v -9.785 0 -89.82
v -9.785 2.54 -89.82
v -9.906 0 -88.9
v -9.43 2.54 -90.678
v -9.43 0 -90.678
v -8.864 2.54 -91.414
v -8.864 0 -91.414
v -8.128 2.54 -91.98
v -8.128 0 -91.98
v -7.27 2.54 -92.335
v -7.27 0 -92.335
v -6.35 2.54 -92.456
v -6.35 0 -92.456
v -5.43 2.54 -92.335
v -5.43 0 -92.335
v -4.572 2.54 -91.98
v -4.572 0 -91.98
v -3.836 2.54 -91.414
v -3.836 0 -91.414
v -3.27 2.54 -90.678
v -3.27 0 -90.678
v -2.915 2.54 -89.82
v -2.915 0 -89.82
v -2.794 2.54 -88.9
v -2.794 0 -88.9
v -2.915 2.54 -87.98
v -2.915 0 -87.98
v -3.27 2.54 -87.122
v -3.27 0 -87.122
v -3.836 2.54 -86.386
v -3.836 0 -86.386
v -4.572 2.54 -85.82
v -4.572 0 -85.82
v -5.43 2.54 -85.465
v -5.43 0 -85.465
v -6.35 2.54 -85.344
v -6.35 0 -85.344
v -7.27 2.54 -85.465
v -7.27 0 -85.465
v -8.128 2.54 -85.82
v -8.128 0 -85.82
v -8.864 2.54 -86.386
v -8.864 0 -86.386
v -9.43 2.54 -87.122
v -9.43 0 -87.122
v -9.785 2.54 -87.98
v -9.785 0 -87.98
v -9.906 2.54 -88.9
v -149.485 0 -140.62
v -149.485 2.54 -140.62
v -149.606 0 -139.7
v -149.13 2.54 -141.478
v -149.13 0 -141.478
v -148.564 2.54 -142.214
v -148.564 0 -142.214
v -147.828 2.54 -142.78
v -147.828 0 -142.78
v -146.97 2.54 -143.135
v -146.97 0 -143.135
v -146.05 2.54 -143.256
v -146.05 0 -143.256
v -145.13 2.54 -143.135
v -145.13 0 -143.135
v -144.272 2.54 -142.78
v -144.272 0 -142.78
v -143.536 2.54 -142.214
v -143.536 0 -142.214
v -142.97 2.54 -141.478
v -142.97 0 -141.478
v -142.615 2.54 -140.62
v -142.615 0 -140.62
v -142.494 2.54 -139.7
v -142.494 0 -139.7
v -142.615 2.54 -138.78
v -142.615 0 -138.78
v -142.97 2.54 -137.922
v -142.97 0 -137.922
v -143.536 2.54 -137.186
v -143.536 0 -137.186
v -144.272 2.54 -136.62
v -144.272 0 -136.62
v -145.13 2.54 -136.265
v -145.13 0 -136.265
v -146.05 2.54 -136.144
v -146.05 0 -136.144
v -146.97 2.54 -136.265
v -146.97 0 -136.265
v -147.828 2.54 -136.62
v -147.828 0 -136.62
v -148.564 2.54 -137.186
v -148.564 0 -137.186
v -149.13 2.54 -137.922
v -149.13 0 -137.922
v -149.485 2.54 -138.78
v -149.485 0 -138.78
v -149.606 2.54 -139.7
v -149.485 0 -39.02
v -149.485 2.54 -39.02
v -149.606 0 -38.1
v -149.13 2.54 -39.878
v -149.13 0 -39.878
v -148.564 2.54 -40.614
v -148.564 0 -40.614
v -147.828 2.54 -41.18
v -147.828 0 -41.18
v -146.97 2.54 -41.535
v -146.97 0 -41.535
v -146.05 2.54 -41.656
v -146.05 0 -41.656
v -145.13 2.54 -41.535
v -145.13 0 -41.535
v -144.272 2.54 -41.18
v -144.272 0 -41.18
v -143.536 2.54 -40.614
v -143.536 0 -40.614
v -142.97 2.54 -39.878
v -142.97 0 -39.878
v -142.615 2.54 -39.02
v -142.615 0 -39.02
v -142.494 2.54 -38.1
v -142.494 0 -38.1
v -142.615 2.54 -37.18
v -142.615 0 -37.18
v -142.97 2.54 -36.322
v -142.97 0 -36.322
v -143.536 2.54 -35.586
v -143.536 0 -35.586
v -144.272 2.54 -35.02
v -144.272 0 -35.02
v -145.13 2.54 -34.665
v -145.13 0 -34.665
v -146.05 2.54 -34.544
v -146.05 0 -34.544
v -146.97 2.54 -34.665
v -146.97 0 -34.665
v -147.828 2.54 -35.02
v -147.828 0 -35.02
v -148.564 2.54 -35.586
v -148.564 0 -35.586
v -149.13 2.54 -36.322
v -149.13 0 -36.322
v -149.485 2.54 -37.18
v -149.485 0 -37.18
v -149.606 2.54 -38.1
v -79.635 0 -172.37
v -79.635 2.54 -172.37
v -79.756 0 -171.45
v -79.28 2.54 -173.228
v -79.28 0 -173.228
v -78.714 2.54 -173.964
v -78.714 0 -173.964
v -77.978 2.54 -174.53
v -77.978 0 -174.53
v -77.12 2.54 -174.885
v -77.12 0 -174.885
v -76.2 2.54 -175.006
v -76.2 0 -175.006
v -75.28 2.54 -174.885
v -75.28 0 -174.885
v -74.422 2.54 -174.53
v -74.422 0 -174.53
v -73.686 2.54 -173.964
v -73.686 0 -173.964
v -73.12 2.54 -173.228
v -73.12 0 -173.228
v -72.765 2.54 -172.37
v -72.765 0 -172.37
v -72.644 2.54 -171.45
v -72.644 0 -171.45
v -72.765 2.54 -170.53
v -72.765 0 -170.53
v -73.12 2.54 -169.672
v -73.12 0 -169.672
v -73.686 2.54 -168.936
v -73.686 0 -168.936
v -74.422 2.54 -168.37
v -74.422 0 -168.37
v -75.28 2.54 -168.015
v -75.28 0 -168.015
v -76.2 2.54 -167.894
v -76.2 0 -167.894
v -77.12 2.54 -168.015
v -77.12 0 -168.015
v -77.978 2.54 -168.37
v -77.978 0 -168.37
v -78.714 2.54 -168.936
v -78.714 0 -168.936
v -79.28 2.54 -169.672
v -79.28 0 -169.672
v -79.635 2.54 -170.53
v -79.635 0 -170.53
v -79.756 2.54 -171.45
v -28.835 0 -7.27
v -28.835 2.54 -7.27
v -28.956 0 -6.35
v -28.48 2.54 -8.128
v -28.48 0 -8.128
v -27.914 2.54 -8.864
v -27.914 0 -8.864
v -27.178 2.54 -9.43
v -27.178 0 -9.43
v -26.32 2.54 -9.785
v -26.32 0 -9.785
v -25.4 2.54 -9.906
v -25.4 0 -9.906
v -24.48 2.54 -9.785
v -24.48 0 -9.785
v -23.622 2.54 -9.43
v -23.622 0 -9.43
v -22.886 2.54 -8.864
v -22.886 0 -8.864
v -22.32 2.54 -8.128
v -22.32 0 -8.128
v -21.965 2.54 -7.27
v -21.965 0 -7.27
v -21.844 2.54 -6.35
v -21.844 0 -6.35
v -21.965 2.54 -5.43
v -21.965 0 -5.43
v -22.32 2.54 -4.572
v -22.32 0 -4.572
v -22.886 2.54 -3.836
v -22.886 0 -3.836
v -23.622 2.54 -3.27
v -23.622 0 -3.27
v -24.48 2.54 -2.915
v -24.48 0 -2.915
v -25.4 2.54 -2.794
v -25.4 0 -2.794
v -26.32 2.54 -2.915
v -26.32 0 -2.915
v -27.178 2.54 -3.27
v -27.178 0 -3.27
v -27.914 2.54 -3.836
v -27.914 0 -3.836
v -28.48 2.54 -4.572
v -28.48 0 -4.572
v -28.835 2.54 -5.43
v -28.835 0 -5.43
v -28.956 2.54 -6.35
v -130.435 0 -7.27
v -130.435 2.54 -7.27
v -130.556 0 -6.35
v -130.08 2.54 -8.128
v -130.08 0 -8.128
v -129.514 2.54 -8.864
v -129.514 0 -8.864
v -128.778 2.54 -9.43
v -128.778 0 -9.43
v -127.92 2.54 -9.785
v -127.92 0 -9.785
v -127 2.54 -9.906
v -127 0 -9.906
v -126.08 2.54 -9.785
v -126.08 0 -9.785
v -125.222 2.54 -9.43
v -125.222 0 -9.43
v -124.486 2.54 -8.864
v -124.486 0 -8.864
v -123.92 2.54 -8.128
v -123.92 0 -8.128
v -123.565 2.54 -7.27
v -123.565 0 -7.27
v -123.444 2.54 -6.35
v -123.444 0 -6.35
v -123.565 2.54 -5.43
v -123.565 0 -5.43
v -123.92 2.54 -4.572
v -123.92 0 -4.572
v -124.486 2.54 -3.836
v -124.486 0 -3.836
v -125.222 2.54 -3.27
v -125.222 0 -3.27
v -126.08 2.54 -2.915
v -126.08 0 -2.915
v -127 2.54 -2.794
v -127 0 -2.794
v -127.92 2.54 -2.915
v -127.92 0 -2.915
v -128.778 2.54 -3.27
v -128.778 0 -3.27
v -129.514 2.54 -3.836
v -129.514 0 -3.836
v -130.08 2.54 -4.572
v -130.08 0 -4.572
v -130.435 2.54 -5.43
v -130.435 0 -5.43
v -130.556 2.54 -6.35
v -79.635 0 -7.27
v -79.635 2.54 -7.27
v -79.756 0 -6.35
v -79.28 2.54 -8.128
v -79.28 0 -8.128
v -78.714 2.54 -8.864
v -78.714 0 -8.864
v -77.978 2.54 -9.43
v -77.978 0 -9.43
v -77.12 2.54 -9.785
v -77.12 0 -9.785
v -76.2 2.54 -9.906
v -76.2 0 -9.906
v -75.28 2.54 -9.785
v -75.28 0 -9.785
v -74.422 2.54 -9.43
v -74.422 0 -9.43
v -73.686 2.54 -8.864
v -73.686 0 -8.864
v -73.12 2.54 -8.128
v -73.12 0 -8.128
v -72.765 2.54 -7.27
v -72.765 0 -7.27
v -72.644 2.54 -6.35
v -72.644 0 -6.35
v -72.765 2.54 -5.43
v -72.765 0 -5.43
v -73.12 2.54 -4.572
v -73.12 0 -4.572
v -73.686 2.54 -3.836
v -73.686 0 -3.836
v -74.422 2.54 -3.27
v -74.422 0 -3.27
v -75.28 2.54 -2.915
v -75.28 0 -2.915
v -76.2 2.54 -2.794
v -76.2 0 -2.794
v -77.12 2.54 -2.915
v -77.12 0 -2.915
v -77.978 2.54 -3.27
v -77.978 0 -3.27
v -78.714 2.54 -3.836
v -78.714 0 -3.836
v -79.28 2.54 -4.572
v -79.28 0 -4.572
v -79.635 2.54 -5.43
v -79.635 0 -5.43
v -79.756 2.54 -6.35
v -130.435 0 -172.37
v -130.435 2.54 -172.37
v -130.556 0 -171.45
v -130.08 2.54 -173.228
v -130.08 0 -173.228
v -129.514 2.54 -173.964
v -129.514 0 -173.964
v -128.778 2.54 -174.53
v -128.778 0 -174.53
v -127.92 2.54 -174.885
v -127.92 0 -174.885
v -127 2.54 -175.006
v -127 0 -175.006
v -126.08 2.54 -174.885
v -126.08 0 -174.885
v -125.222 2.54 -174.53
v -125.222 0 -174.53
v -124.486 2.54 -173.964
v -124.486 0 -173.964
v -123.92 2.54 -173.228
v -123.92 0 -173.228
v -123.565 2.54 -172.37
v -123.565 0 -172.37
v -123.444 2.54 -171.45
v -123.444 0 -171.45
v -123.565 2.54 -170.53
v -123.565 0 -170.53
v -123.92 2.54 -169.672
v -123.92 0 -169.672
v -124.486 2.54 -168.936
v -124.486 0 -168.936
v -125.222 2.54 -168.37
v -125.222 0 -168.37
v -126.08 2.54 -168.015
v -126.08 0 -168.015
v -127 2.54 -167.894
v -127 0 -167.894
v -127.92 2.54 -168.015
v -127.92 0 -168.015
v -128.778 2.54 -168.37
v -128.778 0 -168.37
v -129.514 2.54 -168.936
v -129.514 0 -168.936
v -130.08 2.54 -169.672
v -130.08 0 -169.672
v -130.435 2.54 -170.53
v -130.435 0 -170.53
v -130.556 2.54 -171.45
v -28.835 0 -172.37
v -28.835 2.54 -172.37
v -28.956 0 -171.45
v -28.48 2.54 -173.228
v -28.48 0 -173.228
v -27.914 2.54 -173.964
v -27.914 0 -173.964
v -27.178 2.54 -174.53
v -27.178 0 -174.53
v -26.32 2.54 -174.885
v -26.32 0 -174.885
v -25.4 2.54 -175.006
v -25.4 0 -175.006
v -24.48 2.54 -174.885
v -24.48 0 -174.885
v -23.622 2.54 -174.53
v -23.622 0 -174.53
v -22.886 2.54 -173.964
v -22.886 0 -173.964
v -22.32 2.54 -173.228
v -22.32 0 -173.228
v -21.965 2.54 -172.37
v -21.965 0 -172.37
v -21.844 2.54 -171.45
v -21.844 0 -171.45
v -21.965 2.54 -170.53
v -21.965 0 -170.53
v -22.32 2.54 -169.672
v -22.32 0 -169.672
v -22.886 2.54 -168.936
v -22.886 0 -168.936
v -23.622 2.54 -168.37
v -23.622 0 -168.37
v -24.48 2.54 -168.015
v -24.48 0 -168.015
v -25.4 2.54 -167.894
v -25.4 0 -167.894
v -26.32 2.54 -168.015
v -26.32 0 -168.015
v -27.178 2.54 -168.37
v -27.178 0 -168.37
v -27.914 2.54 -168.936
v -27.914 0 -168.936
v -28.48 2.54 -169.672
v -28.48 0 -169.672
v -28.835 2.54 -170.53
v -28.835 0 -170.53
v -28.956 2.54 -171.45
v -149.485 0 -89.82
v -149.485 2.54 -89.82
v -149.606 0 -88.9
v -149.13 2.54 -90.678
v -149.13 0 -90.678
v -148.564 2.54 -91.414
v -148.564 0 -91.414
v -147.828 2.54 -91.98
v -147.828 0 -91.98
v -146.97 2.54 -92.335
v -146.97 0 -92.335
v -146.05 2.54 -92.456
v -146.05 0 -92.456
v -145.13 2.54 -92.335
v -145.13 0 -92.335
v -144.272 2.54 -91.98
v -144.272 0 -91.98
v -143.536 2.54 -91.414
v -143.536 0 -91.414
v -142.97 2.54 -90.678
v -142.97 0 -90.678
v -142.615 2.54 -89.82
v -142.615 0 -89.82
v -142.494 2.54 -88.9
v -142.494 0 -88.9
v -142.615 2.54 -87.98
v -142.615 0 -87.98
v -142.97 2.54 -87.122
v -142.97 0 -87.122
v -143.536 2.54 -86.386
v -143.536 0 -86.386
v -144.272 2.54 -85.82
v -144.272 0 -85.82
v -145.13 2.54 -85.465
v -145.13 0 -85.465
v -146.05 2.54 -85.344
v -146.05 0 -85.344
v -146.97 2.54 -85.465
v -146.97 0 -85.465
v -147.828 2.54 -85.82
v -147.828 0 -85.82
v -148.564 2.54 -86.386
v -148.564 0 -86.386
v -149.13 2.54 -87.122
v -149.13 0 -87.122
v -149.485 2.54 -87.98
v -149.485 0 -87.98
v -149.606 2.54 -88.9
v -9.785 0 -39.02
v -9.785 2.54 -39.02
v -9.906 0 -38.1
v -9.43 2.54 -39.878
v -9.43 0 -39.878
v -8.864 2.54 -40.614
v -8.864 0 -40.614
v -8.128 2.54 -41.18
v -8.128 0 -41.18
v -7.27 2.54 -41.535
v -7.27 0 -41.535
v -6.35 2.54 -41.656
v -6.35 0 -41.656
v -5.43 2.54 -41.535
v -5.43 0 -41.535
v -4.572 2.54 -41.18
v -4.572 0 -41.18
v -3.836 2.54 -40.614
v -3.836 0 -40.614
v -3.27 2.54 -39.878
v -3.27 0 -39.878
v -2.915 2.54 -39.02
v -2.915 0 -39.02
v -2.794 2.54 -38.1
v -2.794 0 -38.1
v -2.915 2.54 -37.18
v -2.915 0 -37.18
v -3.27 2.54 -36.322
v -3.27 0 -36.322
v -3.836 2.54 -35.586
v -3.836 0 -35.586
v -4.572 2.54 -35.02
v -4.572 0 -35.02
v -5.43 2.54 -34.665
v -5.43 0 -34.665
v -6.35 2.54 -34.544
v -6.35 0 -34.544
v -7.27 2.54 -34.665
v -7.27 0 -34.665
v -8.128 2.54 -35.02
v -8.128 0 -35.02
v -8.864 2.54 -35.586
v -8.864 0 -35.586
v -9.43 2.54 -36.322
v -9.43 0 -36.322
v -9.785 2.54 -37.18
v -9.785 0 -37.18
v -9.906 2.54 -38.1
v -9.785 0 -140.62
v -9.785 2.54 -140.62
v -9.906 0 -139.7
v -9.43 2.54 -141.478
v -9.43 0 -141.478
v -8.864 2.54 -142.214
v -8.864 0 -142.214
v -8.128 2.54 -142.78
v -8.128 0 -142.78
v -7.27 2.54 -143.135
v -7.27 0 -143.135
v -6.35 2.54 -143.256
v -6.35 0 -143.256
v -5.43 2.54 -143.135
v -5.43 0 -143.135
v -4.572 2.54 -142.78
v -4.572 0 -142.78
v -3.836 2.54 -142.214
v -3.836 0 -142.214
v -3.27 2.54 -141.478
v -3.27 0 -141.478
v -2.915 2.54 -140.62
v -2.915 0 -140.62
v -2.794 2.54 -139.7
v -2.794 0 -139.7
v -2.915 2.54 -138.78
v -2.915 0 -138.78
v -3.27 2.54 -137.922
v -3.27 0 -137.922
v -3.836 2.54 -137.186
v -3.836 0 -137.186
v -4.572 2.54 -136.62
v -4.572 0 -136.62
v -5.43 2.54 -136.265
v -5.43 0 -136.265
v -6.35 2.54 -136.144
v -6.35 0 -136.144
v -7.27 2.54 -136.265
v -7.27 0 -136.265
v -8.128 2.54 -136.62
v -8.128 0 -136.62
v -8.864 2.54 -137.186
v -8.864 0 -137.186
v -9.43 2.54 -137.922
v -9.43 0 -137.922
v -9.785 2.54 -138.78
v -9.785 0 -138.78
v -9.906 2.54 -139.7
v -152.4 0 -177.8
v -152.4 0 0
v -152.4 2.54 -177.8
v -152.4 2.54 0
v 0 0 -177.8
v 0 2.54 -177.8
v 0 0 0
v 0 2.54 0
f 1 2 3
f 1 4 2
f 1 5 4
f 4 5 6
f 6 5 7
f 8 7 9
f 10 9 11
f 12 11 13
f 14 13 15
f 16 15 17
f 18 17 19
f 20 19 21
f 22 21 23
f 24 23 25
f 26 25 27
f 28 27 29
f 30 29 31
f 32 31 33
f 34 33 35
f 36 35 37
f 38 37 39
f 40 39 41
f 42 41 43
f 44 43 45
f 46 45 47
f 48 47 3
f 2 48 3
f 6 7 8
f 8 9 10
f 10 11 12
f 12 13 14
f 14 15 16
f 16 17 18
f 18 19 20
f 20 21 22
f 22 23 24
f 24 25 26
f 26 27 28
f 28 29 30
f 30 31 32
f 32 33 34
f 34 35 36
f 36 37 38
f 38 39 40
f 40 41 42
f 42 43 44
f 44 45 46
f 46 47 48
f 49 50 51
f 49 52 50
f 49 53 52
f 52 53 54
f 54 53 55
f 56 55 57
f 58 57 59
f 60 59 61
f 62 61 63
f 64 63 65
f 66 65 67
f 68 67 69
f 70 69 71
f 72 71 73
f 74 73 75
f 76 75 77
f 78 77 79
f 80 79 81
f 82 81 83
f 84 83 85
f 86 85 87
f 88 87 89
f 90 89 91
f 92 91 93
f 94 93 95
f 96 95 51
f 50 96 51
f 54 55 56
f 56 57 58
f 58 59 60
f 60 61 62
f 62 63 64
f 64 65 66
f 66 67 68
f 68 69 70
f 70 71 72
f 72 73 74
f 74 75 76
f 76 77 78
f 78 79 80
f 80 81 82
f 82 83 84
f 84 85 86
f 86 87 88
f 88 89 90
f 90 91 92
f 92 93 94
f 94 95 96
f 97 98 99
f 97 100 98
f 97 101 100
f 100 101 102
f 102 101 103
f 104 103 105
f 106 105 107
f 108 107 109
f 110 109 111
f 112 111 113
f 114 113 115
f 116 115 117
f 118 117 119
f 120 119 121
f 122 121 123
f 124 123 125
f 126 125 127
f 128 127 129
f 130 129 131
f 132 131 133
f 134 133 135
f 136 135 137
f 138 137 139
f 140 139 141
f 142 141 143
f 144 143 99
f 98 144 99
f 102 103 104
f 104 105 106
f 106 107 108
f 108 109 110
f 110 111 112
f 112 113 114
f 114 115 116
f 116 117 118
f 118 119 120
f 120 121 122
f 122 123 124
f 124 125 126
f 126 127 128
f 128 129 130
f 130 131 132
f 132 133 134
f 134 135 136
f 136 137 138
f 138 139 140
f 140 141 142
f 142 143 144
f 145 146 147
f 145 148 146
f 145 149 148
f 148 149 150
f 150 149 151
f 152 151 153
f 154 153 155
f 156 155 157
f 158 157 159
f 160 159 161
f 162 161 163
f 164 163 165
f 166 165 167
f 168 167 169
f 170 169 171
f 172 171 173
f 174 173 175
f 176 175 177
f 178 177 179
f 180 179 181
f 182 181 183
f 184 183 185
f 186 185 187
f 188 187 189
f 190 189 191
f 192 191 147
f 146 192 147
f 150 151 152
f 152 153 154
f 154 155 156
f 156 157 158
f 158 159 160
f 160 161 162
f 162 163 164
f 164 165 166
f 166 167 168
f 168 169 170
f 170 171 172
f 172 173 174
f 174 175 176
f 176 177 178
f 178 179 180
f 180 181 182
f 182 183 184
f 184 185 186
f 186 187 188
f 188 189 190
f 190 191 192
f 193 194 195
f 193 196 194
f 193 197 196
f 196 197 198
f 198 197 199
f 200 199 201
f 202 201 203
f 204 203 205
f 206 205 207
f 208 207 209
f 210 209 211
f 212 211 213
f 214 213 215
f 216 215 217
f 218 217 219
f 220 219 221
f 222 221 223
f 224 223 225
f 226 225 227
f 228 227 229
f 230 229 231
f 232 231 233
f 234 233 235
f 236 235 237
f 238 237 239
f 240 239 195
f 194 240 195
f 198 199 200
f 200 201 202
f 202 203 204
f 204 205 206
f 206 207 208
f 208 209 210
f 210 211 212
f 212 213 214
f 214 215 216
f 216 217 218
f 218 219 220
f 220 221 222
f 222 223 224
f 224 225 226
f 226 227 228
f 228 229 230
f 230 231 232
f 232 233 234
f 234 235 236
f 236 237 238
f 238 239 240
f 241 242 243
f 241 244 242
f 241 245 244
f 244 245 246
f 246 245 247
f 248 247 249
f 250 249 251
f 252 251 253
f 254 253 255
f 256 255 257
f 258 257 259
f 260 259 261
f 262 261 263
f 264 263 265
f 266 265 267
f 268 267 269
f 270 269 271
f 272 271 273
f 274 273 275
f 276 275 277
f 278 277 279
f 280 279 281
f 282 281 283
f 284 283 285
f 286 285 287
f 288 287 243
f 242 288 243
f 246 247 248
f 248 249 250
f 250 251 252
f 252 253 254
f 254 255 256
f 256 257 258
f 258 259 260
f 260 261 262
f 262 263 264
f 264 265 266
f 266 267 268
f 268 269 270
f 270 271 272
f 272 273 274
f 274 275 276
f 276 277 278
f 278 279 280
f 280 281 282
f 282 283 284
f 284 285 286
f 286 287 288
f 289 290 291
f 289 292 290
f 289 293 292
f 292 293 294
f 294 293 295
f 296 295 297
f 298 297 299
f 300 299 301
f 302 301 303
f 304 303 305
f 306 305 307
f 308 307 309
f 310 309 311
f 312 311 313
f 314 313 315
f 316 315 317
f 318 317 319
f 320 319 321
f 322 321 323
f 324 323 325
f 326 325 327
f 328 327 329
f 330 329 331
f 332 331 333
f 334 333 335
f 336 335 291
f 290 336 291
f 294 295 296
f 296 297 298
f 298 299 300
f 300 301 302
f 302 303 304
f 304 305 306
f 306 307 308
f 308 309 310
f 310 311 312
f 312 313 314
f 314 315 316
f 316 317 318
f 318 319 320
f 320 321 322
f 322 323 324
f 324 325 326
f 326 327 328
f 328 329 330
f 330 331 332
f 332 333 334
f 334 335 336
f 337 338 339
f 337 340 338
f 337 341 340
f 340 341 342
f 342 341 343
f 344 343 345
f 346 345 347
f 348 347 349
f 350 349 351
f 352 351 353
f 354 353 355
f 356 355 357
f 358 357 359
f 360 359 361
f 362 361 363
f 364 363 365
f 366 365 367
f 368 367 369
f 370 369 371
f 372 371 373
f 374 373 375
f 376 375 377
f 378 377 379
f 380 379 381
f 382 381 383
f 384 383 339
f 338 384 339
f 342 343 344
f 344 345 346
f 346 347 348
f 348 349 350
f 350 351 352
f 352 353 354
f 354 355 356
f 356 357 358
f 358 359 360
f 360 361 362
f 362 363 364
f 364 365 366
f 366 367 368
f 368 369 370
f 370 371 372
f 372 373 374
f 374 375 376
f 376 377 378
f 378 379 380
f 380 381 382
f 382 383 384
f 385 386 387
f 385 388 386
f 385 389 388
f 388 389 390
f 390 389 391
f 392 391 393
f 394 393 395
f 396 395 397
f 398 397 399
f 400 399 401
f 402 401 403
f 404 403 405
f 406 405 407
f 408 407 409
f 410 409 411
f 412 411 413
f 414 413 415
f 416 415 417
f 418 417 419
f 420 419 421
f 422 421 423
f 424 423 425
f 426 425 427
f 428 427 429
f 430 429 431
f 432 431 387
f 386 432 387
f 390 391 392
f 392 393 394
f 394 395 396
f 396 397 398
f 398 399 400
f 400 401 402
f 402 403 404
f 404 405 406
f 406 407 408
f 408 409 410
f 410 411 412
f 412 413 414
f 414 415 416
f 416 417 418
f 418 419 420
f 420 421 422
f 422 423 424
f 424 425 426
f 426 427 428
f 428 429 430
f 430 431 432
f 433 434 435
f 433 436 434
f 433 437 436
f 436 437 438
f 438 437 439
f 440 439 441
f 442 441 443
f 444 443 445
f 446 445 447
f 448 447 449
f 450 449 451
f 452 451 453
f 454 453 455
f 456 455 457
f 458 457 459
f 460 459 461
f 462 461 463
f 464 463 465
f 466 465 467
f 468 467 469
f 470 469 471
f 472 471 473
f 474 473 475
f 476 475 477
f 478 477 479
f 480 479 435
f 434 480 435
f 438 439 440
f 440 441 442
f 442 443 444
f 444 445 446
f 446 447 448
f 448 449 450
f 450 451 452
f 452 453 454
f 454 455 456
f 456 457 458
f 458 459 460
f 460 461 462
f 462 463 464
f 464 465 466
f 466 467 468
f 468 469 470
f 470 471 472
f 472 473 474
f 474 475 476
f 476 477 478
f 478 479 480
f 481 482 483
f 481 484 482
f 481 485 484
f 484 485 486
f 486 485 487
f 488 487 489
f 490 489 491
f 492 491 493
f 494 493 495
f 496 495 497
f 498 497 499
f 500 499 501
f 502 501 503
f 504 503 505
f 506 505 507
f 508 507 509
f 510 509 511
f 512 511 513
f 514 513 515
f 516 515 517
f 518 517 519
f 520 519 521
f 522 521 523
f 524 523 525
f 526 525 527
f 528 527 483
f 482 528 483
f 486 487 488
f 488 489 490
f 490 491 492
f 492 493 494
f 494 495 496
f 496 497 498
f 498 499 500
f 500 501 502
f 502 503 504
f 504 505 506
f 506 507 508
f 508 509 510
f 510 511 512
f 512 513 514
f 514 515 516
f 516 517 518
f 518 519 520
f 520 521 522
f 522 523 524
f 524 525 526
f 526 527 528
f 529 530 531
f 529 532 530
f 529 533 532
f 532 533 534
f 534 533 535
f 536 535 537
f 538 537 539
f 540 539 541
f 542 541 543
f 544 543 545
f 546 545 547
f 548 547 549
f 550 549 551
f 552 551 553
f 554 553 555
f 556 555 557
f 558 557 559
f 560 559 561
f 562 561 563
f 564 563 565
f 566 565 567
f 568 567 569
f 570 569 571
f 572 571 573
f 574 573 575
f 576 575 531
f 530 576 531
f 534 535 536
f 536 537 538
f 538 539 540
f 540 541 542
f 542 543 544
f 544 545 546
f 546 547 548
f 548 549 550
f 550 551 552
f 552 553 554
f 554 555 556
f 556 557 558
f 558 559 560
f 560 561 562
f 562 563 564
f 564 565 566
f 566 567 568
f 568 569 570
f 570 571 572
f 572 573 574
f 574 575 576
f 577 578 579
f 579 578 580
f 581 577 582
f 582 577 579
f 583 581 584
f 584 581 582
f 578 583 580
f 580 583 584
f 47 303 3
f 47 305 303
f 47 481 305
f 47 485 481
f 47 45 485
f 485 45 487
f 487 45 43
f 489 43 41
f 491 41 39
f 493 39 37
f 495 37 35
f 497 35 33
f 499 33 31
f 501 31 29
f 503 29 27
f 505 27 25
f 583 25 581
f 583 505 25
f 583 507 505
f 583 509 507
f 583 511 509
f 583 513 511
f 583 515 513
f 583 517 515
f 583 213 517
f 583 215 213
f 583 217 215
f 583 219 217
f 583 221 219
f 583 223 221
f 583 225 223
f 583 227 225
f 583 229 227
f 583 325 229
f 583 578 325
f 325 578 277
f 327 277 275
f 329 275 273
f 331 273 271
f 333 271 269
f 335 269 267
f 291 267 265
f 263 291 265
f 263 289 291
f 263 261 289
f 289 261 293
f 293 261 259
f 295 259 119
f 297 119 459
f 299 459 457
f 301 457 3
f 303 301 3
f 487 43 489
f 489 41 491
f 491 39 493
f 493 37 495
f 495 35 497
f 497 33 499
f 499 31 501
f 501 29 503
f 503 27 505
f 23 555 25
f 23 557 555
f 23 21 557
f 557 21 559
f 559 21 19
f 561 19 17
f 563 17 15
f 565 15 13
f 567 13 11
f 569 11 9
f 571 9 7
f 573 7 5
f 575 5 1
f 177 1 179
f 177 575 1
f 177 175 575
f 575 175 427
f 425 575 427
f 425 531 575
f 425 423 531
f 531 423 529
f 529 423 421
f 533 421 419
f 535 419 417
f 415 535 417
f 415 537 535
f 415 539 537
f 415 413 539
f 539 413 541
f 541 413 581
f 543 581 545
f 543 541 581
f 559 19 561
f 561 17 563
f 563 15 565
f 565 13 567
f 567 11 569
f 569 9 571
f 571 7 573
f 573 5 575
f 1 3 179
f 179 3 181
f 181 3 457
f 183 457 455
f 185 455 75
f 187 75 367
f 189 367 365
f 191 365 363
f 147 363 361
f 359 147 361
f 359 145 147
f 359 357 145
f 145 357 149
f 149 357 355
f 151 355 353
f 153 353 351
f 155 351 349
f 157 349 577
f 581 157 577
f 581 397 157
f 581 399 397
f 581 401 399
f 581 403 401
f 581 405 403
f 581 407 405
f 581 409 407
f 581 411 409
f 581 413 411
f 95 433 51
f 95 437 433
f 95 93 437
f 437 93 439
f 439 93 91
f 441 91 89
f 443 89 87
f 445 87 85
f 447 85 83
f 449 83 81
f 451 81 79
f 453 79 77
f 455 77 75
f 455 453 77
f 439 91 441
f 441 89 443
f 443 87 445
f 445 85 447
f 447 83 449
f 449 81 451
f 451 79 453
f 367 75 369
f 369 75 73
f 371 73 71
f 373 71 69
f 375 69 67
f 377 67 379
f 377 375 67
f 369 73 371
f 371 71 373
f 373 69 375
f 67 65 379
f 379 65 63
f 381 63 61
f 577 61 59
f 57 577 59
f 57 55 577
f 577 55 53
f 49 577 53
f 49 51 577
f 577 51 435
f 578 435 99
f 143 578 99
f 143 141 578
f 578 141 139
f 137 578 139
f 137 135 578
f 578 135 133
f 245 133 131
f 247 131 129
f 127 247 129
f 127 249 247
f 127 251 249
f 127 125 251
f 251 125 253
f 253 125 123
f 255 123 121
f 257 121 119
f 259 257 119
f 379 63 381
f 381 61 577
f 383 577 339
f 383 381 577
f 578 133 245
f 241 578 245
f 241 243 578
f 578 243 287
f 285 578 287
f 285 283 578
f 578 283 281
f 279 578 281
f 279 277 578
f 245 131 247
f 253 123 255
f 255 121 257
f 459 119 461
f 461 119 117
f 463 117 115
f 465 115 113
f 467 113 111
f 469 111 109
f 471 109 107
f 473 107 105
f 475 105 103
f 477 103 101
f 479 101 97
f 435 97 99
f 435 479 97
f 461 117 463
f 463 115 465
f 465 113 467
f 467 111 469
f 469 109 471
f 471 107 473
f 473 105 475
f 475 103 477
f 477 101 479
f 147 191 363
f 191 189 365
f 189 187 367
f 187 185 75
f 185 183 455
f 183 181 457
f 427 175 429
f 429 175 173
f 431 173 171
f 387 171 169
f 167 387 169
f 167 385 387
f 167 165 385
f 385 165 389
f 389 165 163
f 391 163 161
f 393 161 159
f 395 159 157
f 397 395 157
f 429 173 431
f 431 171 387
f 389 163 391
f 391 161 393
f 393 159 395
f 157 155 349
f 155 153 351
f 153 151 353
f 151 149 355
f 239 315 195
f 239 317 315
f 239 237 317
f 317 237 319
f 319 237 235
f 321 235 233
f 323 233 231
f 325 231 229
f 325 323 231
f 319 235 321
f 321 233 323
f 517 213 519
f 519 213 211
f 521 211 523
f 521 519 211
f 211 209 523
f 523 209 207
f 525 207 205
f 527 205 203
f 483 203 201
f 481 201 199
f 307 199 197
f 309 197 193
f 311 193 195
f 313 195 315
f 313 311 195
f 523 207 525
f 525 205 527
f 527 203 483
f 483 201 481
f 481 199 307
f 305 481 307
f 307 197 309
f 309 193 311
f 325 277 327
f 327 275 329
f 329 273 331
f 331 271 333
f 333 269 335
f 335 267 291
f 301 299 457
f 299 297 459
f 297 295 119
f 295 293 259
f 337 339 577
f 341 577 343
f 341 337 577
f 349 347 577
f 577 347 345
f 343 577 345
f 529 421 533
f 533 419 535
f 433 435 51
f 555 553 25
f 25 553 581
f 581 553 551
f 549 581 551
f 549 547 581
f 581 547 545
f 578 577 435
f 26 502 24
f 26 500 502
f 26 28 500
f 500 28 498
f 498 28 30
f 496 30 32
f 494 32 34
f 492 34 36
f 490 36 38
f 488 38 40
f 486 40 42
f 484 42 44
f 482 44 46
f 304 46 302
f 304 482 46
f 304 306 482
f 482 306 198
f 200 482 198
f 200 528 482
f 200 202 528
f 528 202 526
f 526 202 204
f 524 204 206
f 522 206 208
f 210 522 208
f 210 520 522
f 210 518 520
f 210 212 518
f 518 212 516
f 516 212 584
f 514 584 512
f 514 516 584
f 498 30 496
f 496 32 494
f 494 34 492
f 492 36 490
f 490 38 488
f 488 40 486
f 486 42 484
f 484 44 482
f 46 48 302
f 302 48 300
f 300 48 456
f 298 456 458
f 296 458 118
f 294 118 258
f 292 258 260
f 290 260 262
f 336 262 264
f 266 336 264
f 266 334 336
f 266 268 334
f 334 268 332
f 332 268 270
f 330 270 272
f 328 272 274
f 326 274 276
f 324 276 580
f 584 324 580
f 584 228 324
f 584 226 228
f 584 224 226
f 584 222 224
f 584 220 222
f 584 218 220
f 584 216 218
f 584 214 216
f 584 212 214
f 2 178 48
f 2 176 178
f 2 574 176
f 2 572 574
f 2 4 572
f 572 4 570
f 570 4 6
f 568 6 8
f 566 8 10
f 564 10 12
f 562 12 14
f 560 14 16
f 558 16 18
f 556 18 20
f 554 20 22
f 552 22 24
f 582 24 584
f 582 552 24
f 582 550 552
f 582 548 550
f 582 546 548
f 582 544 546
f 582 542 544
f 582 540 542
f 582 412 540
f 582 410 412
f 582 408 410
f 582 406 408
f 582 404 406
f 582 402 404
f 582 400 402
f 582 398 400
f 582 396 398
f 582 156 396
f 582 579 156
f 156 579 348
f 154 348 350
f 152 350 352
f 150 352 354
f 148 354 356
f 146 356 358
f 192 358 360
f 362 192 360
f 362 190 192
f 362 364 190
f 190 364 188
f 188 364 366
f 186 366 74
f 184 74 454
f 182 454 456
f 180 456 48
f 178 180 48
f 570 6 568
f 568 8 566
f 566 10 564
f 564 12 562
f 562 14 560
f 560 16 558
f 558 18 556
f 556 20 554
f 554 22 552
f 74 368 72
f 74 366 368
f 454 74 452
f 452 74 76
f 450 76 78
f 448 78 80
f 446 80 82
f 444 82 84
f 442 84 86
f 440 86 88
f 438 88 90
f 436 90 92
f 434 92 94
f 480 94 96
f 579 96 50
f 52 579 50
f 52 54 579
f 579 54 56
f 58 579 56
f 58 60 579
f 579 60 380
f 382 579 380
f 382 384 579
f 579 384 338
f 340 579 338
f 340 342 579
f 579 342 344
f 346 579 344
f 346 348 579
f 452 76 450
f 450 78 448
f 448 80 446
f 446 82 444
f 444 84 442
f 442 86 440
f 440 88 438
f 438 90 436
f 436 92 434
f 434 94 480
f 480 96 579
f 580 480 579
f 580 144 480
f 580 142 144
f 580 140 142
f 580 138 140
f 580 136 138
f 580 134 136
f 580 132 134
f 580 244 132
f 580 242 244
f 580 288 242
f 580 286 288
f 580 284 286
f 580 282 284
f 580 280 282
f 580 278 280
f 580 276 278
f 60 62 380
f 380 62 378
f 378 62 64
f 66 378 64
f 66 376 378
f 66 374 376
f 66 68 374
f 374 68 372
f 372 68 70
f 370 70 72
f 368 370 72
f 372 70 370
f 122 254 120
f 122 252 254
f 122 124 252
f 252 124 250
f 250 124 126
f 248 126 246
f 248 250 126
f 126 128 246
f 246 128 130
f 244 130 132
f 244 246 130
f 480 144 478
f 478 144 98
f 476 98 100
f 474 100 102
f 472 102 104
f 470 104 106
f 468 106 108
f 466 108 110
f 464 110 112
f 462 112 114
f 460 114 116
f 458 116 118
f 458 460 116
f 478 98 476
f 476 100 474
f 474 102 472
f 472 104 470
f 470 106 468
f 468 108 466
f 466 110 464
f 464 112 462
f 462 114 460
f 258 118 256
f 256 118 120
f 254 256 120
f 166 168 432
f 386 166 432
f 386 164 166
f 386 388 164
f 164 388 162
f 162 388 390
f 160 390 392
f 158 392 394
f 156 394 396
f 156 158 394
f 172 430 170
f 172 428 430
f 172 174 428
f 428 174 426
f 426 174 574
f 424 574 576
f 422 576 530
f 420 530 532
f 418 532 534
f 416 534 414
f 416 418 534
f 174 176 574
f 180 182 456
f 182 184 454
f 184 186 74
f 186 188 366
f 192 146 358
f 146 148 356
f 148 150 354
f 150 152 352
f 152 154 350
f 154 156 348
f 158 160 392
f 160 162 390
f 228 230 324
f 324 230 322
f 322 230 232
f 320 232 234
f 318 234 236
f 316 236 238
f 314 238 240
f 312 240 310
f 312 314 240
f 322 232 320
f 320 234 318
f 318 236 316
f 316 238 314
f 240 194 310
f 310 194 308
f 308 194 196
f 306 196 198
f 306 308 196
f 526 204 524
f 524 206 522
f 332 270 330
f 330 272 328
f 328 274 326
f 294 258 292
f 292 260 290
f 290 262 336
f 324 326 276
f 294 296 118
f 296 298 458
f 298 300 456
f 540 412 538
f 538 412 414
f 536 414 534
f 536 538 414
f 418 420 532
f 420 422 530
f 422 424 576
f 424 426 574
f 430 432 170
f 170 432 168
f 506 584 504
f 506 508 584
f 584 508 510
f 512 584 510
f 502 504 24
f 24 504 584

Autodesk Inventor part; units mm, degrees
ref_plane "YZ Plane" through (0, 0, 0) normal (1, 0, 0) x (0, 1, 0)
ref_plane "XZ Plane" through (0, 0, 0) normal (0, 1, 0) x (-1, 0, 0)
ref_plane "XY Plane" through (0, 0, 0) normal (0, 0, 1) x (1, 0, 0)
sketch "Sketch1" plane through (0, 0, 0) normal (0, 1, 0) x (-1, 0, 0)
  line L0 (0, 0) -> (152.4, 0)
  line L1 (152.4, 0) -> (152.4, -177.8)
  line L2 (152.4, -177.8) -> (0, -177.8)
  line L3 (0, -177.8) -> (0, 0)
  dimension "d0" = 152.4
  dimension "d1" = 177.8
extrude "Extrusion1" add sketch "Sketch1" along normal blind 2.54
sketch "Sketch2" plane through (0, 2.54, 0) normal (0, 1, 0) x (1, 0, 0)
  line L0 (-152.4, 0) -> (0, 0) projected
  line L1 (0, 0) -> (0, 177.8) projected
  line L2 (0, 177.8) -> (-152.4, 177.8) projected
  line L3 (-152.4, 177.8) -> (-152.4, 0) projected
  line L4 (-146.05, 6.35) -> (-6.35, 6.35) construction
  line L5 (-6.35, 6.35) -> (-6.35, 171.45) construction
  line L6 (-6.35, 171.45) -> (-146.05, 171.45) construction
  line L7 (-146.05, 171.45) -> (-146.05, 6.35) construction
  line L8 (-146.05, 171.45) -> (-127, 171.45) construction
  line L9 (-127, 171.45) -> (-127, 6.35) construction
  line L10 (-127, 6.35) -> (-146.05, 6.35) construction
  line L11 (-146.05, 6.35) -> (-146.05, 171.45) construction
  line L12 (-76.2, 6.35) -> (-127, 6.35) construction
  line L13 (-127, 6.35) -> (-127, 171.45) construction
  line L14 (-127, 171.45) -> (-76.2, 171.45) construction
  line L15 (-76.2, 171.45) -> (-76.2, 6.35) construction
  line L16 (-25.4, 6.35) -> (-6.35, 6.35) construction
  line L17 (-6.35, 6.35) -> (-6.35, 171.45) construction
  line L18 (-6.35, 171.45) -> (-25.4, 171.45) construction
  line L19 (-25.4, 171.45) -> (-25.4, 6.35) construction
  line L20 (0, 0) -> (0, 177.8) construction
  line L21 (-152.4, 0) -> (0, 0) construction
  line L22 (0, 0) -> (0, 12.7) construction
  line L23 (0, 12.7) -> (-152.4, 12.7) construction
  line L24 (-152.4, 12.7) -> (-152.4, 0) construction
  line L25 (-152.4, 177.8) -> (0, 177.8) construction
  line L26 (0, 177.8) -> (0, 165.1) construction
  line L27 (0, 165.1) -> (-152.4, 165.1) construction
  line L28 (-152.4, 165.1) -> (-152.4, 177.8) construction
  line L29 (-146.05, 38.1) -> (-6.35, 38.1) construction
  line L30 (-6.35, 38.1) -> (-6.35, 12.7) construction
  line L31 (-6.35, 12.7) -> (-146.05, 12.7) construction
  line L32 (-146.05, 12.7) -> (-146.05, 38.1) construction
  line L33 (-146.05, 38.1) -> (-6.35, 38.1) construction
  line L34 (-6.35, 38.1) -> (-6.35, 88.9) construction
  line L35 (-6.35, 88.9) -> (-146.05, 88.9) construction
  line L36 (-146.05, 88.9) -> (-146.05, 38.1) construction
  line L37 (-6.35, 88.9) -> (-146.05, 88.9) construction
  line L38 (-146.05, 88.9) -> (-146.05, 139.7) construction
  line L39 (-146.05, 139.7) -> (-6.35, 139.7) construction
  line L40 (-6.35, 139.7) -> (-6.35, 88.9) construction
  line L41 (-146.05, 139.7) -> (-6.35, 139.7) construction
  line L42 (-6.35, 139.7) -> (-6.35, 165.1) construction
  line L43 (-6.35, 165.1) -> (-146.05, 165.1) construction
  line L44 (-146.05, 165.1) -> (-146.05, 139.7) construction
  point P0 (-146.05, 88.9)
  dimension "d4" = 6.35
  dimension "d5" = 25.4
  dimension "d6" = 25.4
  dimension "d7" = 50.8
  dimension "d8" = 12.7
  dimension "d9" = 12.7
  dimension "d10" = 25.4
  dimension "d11" = 25.4
  dimension "d12" = 76.2
hole "Hole1" at (-127, 2.54, -6.35) at (-76.2, 2.54, -6.35) at (-25.4, 2.54, -6.35) at (-127, 2.54, -171.45) at (-76.2, 2.54, -171.45) at (-25.4, 2.54, -171.45) at (-146.05, 2.54, -38.1) at (-146.05, 2.54, -88.9) at (-146.05, 2.54, -139.7) at (-6.35, 2.54, -38.1) at (-6.35, 2.54, -88.9) at (-6.35, 2.54, -139.7) direction (0, -1, 0) diameter 7.112 end through all
properties part number "090003-1"
